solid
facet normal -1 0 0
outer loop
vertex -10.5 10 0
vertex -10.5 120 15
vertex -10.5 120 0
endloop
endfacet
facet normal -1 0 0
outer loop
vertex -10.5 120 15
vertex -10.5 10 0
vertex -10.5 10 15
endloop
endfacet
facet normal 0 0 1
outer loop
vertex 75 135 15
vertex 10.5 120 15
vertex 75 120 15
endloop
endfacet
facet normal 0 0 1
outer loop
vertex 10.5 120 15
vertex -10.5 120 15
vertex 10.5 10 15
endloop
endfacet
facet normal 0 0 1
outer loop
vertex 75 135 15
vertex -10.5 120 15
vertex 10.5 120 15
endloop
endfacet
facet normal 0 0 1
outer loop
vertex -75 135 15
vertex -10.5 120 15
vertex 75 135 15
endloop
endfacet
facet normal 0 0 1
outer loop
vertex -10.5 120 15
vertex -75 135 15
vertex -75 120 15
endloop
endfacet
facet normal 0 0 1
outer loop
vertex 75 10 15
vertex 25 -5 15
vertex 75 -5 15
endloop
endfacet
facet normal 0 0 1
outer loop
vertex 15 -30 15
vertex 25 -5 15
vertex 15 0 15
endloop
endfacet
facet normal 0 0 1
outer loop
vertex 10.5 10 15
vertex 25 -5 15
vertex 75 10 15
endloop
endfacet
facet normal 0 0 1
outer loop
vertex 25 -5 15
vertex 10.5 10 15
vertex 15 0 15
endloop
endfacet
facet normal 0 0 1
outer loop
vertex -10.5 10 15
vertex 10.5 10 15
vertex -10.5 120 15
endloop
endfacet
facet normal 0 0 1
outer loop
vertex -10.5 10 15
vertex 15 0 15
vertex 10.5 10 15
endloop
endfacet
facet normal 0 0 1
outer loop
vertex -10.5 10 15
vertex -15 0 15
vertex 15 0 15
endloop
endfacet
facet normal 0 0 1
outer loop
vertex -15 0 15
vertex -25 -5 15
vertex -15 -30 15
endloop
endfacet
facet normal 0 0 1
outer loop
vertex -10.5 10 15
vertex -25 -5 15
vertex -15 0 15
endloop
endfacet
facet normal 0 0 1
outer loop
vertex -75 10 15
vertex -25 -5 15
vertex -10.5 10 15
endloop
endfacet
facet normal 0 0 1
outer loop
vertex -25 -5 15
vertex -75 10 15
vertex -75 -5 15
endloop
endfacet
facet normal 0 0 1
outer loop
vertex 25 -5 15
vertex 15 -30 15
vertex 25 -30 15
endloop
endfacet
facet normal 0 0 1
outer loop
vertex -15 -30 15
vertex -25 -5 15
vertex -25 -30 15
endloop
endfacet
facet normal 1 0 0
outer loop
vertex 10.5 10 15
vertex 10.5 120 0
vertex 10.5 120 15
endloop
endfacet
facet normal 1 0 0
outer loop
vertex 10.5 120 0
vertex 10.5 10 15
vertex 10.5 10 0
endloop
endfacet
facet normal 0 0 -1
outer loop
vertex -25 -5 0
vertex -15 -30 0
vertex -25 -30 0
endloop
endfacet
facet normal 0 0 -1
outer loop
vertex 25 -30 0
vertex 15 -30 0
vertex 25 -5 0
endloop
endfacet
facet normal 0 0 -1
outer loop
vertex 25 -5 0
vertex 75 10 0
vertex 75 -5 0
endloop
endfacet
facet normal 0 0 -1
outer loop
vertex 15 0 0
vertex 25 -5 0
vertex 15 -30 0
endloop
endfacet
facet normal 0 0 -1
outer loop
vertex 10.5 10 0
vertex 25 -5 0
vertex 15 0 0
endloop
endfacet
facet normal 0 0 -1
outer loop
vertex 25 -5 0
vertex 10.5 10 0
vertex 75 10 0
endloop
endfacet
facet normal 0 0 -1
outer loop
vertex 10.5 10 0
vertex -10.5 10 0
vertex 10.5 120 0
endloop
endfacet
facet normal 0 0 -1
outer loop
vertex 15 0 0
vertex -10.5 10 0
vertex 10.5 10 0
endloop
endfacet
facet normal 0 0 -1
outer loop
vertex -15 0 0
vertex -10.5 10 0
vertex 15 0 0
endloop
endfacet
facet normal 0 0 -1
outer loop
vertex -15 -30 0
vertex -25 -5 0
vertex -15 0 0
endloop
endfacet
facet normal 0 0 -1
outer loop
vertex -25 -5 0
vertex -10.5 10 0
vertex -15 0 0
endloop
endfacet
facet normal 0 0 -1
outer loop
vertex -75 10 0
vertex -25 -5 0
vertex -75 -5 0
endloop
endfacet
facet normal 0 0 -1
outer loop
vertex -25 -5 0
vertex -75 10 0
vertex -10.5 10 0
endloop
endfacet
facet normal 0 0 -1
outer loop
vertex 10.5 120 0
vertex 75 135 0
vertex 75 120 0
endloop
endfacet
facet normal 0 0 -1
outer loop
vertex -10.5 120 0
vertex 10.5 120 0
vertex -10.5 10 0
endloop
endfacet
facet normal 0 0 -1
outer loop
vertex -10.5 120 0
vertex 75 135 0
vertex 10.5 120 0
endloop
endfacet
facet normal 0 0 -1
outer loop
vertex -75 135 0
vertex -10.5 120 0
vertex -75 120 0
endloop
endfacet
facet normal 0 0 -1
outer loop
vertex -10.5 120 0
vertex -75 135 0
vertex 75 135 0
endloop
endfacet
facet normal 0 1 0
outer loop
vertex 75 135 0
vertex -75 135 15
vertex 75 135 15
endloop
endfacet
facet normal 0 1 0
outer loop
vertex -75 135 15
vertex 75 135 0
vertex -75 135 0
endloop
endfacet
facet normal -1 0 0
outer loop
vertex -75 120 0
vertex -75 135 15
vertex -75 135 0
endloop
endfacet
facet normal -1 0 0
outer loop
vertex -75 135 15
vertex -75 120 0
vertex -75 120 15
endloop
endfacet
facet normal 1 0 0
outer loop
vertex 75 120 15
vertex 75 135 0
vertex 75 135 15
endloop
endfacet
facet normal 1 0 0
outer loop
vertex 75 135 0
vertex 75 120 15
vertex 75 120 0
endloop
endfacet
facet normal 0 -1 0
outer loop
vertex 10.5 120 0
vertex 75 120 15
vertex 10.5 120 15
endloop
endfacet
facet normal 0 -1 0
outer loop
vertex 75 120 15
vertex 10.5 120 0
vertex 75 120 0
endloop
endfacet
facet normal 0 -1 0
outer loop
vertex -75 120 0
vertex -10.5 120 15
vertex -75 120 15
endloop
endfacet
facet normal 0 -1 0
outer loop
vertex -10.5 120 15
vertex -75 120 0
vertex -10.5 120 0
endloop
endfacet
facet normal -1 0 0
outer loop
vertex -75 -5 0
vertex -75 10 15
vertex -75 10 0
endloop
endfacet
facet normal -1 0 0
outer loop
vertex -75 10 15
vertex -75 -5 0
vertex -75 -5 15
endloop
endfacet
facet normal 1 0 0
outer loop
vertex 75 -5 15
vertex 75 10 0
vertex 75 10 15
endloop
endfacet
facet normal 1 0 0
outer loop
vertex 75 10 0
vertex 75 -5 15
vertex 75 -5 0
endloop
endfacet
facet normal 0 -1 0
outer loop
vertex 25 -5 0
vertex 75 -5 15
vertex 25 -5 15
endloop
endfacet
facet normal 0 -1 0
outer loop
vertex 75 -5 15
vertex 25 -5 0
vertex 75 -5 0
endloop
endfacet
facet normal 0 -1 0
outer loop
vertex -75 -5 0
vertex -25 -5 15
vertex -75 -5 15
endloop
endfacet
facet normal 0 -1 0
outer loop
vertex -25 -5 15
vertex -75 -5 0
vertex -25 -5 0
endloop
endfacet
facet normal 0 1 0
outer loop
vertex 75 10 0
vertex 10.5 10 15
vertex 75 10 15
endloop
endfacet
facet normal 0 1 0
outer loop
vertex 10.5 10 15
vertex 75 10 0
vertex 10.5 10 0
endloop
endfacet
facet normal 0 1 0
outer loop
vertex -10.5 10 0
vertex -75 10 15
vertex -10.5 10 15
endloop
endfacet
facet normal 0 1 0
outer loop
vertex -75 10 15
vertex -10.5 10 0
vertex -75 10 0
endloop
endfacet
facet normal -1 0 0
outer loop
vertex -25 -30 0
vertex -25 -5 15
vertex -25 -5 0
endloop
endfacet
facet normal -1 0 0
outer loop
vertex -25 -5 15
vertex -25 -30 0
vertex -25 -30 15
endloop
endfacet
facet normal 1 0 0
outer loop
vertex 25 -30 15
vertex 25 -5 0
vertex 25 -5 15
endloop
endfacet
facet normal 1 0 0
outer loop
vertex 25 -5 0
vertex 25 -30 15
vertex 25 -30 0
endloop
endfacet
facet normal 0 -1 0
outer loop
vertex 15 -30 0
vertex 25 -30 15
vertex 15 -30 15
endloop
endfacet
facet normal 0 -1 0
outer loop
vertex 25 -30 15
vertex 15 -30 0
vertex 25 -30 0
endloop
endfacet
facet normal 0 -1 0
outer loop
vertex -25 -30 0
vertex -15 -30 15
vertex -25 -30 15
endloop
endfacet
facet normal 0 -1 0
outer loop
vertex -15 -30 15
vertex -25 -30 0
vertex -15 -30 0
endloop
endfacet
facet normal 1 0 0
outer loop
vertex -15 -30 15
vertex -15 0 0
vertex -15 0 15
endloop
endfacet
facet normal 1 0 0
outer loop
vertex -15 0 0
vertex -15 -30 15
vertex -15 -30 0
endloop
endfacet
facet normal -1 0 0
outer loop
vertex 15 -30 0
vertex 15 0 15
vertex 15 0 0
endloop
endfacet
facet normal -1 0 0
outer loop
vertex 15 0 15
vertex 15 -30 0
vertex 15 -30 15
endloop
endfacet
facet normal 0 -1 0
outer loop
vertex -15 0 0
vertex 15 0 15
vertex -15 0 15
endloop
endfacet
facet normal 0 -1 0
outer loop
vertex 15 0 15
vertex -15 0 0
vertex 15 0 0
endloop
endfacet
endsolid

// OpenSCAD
ar = 0.05;

height = 15;
width_holder = 15;

width_middle = 21;
length_middle = 135;

width_side = 150;
length_side = 15;

width_endholder_o = 50;
length_endholder_o = 40;
endholder_midoverlap = 10;

width_endholder_i = 30;
length_endholder_i = 30;

difference() {
    union() {
        translate([-width_middle/2, 0, 0])
        cube([width_middle, length_middle, height]);

        translate([-width_side/2, length_middle - length_side, 0])
        cube([width_side, length_side, height]);

        translate([-width_side/2, -5, 0])
        cube([width_side, length_side, height]);

        translate([-width_endholder_o/2, endholder_midoverlap - length_endholder_o, 0])
        cube([width_endholder_o, length_endholder_o, height]);
    }
    translate([-width_endholder_i/2, -length_endholder_i - ar, -ar])
    cube([width_endholder_i, length_endholder_i+ar, height+2*ar]);
}
